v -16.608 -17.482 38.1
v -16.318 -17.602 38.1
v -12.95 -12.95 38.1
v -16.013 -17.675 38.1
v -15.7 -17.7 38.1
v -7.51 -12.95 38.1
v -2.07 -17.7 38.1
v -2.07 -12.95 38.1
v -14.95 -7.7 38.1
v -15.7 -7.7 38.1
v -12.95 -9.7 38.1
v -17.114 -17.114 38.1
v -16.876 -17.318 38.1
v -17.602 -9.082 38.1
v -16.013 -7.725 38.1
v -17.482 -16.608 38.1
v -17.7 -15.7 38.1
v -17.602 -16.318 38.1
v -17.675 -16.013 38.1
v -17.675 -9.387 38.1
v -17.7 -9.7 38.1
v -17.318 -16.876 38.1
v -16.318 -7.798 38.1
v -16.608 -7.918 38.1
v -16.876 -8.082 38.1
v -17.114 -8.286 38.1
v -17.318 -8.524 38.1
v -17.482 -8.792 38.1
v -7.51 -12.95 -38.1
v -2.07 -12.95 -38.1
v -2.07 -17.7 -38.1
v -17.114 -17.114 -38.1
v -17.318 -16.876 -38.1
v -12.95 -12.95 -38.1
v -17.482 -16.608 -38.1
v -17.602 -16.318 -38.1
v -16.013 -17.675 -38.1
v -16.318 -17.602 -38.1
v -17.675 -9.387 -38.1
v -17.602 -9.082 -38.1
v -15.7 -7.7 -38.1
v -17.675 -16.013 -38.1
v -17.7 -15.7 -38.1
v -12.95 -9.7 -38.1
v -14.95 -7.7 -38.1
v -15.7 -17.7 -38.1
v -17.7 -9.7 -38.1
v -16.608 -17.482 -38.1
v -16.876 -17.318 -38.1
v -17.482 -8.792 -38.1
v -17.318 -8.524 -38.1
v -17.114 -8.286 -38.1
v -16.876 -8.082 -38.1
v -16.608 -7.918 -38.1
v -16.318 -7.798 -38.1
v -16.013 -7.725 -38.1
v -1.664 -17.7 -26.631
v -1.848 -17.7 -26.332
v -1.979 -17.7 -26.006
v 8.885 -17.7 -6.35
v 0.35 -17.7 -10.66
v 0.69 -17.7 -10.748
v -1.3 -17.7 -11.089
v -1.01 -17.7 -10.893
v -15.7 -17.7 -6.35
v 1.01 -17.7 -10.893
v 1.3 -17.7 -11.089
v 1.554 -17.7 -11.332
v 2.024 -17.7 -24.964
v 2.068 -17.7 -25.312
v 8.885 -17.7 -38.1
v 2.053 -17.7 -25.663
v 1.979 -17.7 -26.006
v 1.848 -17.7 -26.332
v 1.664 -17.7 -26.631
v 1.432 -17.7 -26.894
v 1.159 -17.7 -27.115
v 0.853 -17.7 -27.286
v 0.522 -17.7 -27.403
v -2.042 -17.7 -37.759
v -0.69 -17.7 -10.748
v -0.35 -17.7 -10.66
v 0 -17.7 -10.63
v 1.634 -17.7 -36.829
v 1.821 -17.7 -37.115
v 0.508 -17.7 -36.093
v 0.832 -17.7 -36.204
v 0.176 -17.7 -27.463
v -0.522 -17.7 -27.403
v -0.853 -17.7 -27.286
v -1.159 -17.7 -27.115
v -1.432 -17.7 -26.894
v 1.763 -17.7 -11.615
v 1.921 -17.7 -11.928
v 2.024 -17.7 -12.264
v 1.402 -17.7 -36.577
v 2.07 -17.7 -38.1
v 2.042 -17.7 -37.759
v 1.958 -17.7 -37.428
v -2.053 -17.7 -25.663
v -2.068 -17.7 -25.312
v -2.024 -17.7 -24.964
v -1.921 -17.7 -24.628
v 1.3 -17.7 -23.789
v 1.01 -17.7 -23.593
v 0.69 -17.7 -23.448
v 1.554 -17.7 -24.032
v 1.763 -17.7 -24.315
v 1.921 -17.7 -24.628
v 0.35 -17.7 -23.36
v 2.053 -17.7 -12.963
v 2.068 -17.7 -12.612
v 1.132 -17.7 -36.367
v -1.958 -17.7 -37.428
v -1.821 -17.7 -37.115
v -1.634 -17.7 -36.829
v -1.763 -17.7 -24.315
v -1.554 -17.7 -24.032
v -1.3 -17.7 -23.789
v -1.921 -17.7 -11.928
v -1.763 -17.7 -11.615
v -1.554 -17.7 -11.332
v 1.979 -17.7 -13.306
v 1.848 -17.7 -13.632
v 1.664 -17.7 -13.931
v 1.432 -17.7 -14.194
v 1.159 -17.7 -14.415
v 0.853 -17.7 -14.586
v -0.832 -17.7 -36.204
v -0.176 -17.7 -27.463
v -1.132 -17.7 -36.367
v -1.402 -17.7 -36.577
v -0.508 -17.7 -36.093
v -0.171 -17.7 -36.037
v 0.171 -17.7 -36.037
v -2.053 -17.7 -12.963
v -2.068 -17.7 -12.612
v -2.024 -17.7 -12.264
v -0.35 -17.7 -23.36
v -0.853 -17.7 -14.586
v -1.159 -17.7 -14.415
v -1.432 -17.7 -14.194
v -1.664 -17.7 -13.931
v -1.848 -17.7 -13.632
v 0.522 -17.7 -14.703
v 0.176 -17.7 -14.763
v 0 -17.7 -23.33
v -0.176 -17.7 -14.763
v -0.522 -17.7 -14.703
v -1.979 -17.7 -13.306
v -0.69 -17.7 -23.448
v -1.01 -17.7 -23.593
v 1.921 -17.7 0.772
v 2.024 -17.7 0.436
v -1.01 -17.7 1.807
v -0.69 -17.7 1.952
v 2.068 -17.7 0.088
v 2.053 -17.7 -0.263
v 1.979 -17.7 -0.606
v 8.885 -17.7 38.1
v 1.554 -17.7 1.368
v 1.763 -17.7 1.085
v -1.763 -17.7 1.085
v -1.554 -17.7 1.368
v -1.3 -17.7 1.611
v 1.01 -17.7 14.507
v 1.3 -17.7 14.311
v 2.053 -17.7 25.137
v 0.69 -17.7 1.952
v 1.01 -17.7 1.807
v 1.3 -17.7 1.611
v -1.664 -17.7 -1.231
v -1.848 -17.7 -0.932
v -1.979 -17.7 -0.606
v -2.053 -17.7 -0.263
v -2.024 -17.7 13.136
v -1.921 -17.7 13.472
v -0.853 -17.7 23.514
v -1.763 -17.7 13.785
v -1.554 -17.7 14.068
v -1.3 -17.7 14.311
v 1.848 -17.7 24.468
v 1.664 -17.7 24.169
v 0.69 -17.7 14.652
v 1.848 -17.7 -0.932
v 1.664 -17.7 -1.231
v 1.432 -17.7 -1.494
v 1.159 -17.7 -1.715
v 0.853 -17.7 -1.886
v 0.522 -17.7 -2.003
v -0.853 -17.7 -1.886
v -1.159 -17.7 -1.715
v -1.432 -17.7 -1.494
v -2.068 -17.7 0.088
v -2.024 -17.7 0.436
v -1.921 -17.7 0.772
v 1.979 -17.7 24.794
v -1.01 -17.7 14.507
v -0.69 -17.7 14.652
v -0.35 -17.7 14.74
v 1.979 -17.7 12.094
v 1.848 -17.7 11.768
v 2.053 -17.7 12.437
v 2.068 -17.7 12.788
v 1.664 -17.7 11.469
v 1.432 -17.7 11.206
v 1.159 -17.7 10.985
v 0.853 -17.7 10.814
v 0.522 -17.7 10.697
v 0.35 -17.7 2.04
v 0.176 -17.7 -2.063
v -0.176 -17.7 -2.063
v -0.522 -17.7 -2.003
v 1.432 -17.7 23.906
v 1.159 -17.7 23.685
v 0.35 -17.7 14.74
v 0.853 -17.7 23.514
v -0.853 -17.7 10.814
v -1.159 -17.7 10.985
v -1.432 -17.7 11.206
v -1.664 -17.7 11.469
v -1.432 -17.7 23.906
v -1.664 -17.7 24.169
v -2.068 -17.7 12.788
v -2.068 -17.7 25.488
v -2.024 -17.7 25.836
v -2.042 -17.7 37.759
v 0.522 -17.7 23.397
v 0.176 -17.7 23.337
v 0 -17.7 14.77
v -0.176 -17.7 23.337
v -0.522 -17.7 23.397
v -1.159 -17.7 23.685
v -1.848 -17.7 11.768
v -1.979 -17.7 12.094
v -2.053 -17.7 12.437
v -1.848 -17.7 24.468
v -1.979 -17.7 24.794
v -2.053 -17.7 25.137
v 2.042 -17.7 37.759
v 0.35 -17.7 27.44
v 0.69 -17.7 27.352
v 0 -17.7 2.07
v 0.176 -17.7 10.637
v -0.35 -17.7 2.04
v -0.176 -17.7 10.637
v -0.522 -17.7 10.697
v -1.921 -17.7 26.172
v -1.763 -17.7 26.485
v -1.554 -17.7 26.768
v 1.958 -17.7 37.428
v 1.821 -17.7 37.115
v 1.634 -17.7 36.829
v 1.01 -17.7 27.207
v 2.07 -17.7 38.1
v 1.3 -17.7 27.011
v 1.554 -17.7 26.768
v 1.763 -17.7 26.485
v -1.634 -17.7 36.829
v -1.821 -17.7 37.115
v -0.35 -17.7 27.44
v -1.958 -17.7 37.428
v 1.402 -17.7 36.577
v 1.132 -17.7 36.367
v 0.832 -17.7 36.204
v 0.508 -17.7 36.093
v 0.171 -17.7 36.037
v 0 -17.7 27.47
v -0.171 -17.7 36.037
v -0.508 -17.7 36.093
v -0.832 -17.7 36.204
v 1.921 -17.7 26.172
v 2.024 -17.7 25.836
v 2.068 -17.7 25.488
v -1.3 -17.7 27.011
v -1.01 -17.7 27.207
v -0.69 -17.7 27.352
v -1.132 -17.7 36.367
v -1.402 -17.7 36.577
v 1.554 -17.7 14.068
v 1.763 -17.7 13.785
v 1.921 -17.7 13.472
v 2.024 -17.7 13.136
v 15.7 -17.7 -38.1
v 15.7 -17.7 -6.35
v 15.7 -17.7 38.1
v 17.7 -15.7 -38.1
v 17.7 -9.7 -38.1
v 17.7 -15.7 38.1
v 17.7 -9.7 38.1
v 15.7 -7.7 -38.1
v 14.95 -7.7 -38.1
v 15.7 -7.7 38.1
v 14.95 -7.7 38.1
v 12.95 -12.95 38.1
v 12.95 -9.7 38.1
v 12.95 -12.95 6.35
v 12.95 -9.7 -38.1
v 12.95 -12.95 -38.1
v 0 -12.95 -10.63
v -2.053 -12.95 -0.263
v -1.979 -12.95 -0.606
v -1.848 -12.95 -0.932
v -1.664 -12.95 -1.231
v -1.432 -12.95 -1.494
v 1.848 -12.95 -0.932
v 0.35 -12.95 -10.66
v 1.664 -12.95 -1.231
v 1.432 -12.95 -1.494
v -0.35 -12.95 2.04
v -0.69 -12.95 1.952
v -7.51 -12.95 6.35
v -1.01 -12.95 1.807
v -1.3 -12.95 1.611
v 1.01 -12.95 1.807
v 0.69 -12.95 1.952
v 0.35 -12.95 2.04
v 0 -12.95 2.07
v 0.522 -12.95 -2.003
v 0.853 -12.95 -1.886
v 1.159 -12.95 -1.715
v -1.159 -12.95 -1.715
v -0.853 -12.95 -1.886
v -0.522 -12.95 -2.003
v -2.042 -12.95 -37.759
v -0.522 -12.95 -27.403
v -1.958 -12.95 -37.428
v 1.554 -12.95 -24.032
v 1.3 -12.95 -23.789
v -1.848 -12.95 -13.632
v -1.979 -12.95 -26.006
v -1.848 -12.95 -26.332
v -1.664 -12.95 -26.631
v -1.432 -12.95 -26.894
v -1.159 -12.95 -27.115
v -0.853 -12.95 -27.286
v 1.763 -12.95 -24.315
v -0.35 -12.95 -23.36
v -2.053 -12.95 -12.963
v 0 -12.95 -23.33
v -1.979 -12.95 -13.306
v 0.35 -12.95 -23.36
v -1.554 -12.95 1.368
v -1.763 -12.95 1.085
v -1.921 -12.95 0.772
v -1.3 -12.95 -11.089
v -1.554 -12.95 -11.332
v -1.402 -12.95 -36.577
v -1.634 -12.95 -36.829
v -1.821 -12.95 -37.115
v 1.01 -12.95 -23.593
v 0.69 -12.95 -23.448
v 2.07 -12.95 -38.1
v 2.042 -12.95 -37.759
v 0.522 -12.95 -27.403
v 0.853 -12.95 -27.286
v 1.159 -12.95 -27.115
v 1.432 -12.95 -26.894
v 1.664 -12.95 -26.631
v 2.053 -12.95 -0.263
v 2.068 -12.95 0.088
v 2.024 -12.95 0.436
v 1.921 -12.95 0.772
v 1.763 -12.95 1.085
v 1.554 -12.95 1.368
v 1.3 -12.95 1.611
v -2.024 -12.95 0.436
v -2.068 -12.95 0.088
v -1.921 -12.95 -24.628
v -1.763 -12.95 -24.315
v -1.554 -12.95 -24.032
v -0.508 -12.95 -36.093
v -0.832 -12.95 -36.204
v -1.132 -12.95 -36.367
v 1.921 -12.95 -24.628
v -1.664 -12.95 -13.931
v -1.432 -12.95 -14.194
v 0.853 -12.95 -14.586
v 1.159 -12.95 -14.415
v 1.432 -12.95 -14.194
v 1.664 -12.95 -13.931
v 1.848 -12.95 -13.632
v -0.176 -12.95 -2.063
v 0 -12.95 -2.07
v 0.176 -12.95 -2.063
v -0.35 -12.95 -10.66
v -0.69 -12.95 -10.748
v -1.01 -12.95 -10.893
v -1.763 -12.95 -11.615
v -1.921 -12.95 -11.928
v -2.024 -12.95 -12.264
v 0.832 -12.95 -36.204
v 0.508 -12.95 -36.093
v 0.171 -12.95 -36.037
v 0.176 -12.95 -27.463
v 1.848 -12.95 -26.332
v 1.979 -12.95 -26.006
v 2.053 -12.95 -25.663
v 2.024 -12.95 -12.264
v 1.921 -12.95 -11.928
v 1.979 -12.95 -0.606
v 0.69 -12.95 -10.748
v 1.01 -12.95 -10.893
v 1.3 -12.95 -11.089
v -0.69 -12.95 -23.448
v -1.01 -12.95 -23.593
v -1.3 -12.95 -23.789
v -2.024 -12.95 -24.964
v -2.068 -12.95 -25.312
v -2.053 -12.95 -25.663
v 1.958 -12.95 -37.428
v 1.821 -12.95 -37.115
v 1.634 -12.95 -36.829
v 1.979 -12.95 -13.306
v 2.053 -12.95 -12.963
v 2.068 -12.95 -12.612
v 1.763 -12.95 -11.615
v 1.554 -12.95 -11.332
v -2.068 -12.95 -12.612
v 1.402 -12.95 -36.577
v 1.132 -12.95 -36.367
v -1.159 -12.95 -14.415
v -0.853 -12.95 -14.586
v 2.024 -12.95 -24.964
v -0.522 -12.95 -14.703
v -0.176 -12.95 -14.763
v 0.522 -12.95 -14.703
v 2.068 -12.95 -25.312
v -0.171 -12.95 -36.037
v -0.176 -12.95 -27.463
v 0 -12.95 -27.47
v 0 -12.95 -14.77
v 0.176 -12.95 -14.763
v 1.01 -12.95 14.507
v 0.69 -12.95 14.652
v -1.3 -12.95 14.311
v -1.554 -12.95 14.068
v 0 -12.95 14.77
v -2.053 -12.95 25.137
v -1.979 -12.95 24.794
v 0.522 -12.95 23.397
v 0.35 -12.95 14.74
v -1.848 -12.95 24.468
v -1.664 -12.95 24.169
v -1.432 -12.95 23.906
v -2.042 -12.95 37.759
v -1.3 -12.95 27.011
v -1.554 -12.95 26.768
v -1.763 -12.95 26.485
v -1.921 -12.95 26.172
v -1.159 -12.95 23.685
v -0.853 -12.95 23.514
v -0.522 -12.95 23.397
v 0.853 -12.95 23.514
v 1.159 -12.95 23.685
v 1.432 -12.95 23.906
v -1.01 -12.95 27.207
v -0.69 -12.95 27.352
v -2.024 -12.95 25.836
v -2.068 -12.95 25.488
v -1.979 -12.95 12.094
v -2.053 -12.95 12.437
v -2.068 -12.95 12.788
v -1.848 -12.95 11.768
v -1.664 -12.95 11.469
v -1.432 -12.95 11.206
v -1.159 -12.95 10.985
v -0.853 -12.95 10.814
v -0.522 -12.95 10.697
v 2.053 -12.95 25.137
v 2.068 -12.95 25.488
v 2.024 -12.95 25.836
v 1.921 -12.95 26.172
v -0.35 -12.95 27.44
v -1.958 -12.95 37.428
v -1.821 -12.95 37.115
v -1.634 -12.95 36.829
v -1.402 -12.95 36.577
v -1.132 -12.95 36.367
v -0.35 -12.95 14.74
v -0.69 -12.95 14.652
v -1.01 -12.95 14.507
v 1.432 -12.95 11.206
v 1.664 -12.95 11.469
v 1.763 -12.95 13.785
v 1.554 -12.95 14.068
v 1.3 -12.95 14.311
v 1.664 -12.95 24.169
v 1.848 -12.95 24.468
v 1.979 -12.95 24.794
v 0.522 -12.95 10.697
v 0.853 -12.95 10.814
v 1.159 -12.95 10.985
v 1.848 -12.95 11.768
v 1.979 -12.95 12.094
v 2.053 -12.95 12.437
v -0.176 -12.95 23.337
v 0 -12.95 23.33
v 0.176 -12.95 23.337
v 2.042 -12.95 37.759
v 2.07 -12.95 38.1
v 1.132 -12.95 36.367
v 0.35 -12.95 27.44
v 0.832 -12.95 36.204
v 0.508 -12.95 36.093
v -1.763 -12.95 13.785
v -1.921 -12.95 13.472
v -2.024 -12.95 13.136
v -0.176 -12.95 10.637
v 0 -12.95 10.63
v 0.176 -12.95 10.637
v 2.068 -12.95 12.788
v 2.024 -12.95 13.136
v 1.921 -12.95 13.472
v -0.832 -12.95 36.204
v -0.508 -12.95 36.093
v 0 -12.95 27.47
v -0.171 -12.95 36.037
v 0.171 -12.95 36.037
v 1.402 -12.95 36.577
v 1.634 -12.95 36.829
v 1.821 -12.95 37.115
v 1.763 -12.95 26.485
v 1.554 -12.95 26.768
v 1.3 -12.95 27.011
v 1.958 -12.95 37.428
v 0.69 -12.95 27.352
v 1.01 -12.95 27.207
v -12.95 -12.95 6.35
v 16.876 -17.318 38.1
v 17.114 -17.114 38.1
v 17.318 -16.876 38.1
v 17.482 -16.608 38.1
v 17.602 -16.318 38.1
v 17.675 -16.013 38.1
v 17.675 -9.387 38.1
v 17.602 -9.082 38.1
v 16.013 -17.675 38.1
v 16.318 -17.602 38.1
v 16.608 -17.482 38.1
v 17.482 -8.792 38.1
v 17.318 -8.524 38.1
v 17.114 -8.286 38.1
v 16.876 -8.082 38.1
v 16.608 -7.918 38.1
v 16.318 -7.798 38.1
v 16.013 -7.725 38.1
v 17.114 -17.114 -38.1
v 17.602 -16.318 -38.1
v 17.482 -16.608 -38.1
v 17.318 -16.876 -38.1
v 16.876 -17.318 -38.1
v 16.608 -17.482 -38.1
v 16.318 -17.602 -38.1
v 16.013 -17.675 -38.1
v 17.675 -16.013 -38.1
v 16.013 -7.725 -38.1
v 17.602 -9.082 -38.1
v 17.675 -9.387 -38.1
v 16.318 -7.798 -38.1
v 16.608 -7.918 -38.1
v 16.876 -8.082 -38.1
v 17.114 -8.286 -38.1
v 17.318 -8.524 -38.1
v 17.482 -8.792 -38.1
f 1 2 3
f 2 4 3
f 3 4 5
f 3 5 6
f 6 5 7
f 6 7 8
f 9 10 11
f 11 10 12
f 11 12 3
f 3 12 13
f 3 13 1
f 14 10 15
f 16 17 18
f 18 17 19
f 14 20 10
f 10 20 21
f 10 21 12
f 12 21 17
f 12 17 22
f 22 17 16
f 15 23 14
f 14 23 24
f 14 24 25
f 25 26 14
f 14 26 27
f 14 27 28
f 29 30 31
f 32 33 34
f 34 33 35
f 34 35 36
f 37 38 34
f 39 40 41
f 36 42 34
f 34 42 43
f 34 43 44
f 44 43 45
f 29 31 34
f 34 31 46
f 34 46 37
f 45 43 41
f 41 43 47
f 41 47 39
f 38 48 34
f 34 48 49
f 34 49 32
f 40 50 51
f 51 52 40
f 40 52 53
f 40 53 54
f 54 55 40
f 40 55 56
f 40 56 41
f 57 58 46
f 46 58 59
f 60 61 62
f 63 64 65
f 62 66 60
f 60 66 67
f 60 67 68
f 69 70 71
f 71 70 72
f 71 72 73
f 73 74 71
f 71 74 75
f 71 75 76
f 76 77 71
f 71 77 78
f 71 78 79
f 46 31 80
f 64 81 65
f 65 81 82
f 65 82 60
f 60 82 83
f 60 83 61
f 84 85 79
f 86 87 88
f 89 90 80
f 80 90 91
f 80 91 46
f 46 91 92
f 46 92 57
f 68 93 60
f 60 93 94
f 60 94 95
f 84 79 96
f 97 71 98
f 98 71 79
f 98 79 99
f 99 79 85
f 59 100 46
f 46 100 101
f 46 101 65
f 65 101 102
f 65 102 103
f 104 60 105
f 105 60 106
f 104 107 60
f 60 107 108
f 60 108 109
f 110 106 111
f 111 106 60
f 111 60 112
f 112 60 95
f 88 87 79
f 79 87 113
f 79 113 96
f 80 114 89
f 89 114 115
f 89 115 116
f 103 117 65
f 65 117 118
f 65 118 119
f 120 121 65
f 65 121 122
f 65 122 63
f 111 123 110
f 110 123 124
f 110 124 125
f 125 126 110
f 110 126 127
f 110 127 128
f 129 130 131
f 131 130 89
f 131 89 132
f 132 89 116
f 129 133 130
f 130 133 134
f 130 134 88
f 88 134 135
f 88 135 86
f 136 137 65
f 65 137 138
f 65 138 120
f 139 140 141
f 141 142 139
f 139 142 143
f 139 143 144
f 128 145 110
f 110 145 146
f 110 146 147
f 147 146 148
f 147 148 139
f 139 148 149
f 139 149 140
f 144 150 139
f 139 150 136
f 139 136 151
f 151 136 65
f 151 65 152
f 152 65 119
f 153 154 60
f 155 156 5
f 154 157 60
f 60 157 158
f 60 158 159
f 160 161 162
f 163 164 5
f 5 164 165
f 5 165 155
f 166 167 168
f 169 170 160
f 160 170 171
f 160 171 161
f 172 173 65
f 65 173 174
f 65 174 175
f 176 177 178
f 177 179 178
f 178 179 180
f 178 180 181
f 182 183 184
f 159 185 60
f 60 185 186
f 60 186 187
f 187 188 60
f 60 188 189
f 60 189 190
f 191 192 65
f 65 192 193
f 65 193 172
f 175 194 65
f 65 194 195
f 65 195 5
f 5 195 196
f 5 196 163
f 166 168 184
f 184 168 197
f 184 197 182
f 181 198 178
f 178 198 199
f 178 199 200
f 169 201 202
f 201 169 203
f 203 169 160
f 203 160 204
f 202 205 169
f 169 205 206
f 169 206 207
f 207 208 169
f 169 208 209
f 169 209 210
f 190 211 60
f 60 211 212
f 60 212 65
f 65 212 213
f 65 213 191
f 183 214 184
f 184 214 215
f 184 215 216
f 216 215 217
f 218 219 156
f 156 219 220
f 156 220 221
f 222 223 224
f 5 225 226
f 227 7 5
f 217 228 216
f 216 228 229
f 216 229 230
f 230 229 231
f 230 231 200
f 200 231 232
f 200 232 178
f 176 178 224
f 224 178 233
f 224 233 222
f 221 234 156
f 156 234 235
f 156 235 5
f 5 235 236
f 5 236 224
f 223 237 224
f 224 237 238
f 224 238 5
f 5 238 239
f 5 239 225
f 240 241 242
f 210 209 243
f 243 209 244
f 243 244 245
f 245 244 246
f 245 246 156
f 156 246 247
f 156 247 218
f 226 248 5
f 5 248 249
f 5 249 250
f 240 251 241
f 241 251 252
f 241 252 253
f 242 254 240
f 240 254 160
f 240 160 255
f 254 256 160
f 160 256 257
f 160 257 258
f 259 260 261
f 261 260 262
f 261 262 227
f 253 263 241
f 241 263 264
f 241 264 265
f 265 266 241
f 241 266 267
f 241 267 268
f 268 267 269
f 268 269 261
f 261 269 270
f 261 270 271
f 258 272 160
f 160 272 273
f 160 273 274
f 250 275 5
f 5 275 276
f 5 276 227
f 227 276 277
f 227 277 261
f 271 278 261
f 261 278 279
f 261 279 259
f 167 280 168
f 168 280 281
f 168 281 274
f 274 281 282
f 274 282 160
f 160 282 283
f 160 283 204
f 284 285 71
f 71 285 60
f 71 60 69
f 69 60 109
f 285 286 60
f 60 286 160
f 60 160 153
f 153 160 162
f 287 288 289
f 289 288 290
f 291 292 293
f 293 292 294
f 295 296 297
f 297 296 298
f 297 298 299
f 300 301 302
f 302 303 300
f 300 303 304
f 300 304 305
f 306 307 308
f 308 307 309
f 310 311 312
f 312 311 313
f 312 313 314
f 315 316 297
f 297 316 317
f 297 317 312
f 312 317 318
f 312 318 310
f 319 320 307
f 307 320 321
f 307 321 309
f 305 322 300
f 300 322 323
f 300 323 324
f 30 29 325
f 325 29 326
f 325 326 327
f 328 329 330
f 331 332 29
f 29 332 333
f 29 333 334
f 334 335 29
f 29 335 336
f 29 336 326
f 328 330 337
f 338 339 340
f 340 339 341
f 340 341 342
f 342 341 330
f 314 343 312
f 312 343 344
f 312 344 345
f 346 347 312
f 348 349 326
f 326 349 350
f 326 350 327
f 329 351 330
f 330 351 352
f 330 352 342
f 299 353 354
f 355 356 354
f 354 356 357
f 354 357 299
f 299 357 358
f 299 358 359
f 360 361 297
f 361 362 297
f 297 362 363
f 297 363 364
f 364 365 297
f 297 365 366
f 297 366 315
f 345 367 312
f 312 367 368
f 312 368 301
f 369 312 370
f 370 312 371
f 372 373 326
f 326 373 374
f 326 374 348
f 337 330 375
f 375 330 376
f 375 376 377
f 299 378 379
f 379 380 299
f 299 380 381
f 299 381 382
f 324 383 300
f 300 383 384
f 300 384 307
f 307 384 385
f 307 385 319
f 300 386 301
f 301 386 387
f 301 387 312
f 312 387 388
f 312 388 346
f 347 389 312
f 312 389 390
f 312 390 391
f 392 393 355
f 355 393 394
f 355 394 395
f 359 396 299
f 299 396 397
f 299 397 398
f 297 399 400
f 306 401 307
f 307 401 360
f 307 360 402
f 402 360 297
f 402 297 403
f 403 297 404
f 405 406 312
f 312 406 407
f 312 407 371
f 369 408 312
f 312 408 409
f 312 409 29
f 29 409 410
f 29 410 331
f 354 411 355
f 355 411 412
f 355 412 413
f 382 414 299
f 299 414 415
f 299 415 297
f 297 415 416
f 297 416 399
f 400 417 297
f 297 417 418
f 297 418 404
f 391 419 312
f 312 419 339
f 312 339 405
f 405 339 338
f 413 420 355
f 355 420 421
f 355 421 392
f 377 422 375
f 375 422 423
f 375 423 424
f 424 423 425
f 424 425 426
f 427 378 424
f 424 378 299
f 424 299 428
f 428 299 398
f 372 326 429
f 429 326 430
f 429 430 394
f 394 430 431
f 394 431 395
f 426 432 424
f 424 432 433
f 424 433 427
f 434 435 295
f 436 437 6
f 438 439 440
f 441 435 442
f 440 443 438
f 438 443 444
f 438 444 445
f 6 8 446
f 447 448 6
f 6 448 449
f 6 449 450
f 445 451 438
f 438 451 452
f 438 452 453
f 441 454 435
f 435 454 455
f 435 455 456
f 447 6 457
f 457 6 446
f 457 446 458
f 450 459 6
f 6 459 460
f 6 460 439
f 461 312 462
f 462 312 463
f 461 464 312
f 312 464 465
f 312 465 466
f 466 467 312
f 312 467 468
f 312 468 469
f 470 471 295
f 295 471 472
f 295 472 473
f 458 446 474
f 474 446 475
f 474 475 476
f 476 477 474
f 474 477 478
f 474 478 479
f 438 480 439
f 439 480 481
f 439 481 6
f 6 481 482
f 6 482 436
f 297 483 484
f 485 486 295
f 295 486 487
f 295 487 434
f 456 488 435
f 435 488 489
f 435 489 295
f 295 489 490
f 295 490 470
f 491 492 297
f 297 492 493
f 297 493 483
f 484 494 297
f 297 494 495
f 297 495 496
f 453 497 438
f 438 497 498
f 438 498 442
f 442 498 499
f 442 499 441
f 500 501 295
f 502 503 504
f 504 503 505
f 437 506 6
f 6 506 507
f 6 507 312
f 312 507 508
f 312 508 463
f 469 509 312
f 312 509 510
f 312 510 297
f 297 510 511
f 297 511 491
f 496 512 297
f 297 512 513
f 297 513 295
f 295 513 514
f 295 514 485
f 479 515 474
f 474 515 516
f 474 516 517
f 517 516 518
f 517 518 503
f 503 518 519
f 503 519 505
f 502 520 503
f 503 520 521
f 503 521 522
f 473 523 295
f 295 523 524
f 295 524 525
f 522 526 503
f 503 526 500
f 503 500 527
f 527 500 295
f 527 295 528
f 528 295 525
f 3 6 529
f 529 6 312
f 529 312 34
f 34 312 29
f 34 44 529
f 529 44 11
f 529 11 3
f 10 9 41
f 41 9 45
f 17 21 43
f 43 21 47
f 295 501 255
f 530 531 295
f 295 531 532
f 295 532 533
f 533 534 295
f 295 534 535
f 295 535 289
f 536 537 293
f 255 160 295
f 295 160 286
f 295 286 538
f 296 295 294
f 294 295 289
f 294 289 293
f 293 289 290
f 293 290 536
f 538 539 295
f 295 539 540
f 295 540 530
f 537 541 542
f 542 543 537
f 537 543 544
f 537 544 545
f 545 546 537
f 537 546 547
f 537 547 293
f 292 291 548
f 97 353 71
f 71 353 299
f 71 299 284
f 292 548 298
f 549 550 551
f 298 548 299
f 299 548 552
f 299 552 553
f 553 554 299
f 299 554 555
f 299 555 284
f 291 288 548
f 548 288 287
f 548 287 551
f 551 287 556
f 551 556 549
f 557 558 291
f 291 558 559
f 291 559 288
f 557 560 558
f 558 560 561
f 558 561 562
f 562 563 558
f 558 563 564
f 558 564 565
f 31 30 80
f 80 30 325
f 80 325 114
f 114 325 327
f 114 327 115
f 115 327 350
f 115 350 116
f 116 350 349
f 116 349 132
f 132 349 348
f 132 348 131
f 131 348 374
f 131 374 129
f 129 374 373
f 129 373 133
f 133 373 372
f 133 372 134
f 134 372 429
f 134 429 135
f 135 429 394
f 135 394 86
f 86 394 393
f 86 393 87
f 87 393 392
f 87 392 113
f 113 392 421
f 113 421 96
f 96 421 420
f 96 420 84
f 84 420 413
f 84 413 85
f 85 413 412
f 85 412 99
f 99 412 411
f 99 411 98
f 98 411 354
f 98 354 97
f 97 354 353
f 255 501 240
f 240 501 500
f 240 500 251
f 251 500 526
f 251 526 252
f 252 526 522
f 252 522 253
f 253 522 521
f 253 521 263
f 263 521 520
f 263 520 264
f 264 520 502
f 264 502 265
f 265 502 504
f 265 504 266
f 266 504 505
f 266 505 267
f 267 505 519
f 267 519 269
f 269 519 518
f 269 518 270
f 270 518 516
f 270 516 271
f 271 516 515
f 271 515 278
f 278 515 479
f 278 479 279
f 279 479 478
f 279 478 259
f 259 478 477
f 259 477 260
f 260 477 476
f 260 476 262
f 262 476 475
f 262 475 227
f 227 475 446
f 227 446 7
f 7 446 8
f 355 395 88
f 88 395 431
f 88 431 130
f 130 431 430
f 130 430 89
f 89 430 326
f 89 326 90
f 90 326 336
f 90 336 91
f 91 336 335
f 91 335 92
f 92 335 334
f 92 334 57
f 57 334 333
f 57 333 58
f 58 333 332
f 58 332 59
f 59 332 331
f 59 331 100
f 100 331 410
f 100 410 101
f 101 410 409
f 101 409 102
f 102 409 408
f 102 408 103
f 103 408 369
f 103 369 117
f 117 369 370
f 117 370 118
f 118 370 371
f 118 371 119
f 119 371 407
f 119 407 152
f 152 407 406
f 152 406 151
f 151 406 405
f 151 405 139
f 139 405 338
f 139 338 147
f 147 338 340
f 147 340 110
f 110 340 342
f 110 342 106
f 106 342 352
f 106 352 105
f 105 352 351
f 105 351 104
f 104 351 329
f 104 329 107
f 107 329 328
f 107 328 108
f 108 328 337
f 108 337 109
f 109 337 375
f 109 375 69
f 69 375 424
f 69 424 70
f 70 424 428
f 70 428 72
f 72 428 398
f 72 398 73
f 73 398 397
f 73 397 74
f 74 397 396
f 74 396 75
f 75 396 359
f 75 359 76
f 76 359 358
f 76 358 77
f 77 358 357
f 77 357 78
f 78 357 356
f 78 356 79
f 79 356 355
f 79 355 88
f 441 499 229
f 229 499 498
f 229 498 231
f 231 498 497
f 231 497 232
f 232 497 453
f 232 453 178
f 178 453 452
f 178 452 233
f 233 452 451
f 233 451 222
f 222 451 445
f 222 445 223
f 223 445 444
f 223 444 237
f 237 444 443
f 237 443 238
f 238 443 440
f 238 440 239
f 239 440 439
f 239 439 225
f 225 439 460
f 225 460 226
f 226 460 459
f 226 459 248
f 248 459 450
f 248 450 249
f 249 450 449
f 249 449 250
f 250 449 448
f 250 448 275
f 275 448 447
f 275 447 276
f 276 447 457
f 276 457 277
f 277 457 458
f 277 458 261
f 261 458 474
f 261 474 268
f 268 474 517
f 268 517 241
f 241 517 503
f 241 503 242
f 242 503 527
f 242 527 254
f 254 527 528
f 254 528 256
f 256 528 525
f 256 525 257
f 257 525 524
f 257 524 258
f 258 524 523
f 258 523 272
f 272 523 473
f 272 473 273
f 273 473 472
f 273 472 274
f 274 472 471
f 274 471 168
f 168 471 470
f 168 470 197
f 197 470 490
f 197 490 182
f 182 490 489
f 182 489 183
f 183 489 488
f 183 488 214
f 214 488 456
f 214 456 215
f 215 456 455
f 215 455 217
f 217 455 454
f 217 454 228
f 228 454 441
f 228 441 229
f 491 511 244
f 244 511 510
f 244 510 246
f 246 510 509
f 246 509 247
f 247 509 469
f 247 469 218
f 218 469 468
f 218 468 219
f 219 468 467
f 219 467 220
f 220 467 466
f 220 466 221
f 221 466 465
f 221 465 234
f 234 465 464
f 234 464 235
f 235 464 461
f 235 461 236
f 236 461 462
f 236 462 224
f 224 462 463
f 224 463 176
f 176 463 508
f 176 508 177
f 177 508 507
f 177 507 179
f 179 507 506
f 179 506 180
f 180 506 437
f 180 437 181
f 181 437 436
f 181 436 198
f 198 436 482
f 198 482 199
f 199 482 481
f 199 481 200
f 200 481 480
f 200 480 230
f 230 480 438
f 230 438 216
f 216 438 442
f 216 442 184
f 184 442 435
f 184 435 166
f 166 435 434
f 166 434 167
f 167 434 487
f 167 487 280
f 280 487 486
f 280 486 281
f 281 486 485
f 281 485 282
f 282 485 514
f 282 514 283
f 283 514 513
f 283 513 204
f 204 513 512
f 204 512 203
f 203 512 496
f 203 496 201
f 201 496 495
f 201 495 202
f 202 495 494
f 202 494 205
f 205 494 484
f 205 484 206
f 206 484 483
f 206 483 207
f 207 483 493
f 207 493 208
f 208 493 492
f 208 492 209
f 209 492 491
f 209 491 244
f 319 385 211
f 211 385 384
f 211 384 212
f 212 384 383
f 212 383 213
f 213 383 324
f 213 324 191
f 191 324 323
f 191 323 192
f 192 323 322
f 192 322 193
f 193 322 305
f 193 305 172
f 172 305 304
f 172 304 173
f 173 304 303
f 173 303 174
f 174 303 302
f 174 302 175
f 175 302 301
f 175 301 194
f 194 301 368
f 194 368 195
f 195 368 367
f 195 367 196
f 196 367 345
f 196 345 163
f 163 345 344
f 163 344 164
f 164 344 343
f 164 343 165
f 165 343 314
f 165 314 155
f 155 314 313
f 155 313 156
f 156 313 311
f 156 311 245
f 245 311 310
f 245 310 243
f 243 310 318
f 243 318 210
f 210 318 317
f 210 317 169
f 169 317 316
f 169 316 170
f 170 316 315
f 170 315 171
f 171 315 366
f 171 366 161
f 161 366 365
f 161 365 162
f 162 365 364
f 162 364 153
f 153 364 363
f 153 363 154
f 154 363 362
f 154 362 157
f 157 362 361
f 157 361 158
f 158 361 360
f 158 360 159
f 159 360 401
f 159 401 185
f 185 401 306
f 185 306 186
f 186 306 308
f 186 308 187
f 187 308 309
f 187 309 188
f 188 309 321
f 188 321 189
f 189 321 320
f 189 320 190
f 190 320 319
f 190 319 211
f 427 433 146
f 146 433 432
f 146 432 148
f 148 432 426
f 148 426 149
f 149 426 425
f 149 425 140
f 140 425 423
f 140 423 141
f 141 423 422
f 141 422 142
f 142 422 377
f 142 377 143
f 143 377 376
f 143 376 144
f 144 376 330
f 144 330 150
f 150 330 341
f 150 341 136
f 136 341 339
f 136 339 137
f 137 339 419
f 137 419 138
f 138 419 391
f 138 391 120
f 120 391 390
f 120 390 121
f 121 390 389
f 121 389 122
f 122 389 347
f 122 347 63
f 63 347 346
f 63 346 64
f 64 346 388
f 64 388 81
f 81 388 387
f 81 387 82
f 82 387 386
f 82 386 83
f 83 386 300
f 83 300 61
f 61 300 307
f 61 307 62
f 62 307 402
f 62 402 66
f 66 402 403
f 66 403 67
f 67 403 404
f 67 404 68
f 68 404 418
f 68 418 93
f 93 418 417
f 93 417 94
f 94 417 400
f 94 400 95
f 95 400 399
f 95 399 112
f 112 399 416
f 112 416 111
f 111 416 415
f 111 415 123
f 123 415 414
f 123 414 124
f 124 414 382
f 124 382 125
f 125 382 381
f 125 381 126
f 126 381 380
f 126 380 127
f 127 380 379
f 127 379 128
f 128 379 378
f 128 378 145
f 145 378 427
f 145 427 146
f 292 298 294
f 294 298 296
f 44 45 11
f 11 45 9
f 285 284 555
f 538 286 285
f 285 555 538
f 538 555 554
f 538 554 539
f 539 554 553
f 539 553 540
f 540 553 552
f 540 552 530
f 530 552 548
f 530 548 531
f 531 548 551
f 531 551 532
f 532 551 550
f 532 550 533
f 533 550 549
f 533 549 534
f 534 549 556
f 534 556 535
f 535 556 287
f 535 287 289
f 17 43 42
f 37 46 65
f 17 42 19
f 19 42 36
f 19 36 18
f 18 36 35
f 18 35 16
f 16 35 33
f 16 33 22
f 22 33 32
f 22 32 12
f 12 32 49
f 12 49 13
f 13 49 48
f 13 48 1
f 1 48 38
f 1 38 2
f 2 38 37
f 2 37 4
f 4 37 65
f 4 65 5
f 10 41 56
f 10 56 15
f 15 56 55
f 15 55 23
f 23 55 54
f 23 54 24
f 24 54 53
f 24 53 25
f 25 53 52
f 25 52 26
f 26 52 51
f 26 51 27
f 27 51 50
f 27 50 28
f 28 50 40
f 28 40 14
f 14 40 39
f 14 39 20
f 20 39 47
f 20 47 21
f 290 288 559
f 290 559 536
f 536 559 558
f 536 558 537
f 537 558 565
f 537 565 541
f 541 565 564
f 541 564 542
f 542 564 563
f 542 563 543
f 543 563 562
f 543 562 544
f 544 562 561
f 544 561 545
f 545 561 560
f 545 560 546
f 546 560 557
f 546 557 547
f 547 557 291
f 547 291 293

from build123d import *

# Parameters (mm, degrees)
BOSS_EXTRUDE1_DEPTH     = 38.1
CUT_EXTRUDE1_DEPTH      = 43.337483392
CUT_EXTRUDE1_DEPTH_BACK = 43.337483392
SKETCH2_R               = 2.07
CHAMFER1_SIZE           = 2
FILLET1_R               = 2


with BuildPart() as part:
    # Sketch1 → Boss-Extrude1 (new, symmetric)
    with BuildSketch(Plane.XY):
        Polygon((-17.7, -7.7), (-17.7, -17.7), (17.7, -17.7), (17.7, -7.7), (12.95, -7.7), (12.95, -12.95), (-12.95, -12.95), (-12.95, -7.7), align=None)
    extrude(amount=BOSS_EXTRUDE1_DEPTH, both=True)

    # Sketch2 → Cut-Extrude1 (cut, two sides: drawn at the far end of the back side and taken through both)
    with BuildSketch(Plane(origin=(0, -12.95, 0), x_dir=(1, 0, 0), z_dir=(0, 1, 0)).offset(-CUT_EXTRUDE1_DEPTH_BACK)):
        with Locations(Location((0, 25.4, 0), (0, 0, 270))):
            Circle(SKETCH2_R)
        with Locations(Location((0, 12.7, 0), (0, 0, 270))):
            Circle(SKETCH2_R)
        with Locations(Location((0, 0, 0), (0, 0, 270))):
            Circle(SKETCH2_R)
        with Locations(Location((0, -12.7, 0), (0, 0, 270))):
            Circle(SKETCH2_R)
        with Locations(Location((0, -25.4, 0), (0, 0, 270))):
            Circle(SKETCH2_R)
        with Locations((0, -38.1)):
            Circle(SKETCH2_R)
        with Locations((0, 38.1)):
            Circle(SKETCH2_R)
    extrude(amount=CUT_EXTRUDE1_DEPTH + CUT_EXTRUDE1_DEPTH_BACK, mode=Mode.SUBTRACT)

    # Chamfer1
    chamfer1_edges = [part.edges().sort_by_distance(p)[0] for p in [
        (-12.95, -7.7, 0),
        (12.95, -7.7, 0),
    ]]
    chamfer(chamfer1_edges, length=CHAMFER1_SIZE)

    # Fillet1
    fillet1_edges = [part.edges().sort_by_distance(p)[0] for p in [
        (-17.7, -17.7, 0),
        (-17.7, -7.7, 0),
        (17.7, -7.7, 0),
        (17.7, -17.7, 0),
    ]]
    fillet(fillet1_edges, radius=FILLET1_R)


solid = part.part
